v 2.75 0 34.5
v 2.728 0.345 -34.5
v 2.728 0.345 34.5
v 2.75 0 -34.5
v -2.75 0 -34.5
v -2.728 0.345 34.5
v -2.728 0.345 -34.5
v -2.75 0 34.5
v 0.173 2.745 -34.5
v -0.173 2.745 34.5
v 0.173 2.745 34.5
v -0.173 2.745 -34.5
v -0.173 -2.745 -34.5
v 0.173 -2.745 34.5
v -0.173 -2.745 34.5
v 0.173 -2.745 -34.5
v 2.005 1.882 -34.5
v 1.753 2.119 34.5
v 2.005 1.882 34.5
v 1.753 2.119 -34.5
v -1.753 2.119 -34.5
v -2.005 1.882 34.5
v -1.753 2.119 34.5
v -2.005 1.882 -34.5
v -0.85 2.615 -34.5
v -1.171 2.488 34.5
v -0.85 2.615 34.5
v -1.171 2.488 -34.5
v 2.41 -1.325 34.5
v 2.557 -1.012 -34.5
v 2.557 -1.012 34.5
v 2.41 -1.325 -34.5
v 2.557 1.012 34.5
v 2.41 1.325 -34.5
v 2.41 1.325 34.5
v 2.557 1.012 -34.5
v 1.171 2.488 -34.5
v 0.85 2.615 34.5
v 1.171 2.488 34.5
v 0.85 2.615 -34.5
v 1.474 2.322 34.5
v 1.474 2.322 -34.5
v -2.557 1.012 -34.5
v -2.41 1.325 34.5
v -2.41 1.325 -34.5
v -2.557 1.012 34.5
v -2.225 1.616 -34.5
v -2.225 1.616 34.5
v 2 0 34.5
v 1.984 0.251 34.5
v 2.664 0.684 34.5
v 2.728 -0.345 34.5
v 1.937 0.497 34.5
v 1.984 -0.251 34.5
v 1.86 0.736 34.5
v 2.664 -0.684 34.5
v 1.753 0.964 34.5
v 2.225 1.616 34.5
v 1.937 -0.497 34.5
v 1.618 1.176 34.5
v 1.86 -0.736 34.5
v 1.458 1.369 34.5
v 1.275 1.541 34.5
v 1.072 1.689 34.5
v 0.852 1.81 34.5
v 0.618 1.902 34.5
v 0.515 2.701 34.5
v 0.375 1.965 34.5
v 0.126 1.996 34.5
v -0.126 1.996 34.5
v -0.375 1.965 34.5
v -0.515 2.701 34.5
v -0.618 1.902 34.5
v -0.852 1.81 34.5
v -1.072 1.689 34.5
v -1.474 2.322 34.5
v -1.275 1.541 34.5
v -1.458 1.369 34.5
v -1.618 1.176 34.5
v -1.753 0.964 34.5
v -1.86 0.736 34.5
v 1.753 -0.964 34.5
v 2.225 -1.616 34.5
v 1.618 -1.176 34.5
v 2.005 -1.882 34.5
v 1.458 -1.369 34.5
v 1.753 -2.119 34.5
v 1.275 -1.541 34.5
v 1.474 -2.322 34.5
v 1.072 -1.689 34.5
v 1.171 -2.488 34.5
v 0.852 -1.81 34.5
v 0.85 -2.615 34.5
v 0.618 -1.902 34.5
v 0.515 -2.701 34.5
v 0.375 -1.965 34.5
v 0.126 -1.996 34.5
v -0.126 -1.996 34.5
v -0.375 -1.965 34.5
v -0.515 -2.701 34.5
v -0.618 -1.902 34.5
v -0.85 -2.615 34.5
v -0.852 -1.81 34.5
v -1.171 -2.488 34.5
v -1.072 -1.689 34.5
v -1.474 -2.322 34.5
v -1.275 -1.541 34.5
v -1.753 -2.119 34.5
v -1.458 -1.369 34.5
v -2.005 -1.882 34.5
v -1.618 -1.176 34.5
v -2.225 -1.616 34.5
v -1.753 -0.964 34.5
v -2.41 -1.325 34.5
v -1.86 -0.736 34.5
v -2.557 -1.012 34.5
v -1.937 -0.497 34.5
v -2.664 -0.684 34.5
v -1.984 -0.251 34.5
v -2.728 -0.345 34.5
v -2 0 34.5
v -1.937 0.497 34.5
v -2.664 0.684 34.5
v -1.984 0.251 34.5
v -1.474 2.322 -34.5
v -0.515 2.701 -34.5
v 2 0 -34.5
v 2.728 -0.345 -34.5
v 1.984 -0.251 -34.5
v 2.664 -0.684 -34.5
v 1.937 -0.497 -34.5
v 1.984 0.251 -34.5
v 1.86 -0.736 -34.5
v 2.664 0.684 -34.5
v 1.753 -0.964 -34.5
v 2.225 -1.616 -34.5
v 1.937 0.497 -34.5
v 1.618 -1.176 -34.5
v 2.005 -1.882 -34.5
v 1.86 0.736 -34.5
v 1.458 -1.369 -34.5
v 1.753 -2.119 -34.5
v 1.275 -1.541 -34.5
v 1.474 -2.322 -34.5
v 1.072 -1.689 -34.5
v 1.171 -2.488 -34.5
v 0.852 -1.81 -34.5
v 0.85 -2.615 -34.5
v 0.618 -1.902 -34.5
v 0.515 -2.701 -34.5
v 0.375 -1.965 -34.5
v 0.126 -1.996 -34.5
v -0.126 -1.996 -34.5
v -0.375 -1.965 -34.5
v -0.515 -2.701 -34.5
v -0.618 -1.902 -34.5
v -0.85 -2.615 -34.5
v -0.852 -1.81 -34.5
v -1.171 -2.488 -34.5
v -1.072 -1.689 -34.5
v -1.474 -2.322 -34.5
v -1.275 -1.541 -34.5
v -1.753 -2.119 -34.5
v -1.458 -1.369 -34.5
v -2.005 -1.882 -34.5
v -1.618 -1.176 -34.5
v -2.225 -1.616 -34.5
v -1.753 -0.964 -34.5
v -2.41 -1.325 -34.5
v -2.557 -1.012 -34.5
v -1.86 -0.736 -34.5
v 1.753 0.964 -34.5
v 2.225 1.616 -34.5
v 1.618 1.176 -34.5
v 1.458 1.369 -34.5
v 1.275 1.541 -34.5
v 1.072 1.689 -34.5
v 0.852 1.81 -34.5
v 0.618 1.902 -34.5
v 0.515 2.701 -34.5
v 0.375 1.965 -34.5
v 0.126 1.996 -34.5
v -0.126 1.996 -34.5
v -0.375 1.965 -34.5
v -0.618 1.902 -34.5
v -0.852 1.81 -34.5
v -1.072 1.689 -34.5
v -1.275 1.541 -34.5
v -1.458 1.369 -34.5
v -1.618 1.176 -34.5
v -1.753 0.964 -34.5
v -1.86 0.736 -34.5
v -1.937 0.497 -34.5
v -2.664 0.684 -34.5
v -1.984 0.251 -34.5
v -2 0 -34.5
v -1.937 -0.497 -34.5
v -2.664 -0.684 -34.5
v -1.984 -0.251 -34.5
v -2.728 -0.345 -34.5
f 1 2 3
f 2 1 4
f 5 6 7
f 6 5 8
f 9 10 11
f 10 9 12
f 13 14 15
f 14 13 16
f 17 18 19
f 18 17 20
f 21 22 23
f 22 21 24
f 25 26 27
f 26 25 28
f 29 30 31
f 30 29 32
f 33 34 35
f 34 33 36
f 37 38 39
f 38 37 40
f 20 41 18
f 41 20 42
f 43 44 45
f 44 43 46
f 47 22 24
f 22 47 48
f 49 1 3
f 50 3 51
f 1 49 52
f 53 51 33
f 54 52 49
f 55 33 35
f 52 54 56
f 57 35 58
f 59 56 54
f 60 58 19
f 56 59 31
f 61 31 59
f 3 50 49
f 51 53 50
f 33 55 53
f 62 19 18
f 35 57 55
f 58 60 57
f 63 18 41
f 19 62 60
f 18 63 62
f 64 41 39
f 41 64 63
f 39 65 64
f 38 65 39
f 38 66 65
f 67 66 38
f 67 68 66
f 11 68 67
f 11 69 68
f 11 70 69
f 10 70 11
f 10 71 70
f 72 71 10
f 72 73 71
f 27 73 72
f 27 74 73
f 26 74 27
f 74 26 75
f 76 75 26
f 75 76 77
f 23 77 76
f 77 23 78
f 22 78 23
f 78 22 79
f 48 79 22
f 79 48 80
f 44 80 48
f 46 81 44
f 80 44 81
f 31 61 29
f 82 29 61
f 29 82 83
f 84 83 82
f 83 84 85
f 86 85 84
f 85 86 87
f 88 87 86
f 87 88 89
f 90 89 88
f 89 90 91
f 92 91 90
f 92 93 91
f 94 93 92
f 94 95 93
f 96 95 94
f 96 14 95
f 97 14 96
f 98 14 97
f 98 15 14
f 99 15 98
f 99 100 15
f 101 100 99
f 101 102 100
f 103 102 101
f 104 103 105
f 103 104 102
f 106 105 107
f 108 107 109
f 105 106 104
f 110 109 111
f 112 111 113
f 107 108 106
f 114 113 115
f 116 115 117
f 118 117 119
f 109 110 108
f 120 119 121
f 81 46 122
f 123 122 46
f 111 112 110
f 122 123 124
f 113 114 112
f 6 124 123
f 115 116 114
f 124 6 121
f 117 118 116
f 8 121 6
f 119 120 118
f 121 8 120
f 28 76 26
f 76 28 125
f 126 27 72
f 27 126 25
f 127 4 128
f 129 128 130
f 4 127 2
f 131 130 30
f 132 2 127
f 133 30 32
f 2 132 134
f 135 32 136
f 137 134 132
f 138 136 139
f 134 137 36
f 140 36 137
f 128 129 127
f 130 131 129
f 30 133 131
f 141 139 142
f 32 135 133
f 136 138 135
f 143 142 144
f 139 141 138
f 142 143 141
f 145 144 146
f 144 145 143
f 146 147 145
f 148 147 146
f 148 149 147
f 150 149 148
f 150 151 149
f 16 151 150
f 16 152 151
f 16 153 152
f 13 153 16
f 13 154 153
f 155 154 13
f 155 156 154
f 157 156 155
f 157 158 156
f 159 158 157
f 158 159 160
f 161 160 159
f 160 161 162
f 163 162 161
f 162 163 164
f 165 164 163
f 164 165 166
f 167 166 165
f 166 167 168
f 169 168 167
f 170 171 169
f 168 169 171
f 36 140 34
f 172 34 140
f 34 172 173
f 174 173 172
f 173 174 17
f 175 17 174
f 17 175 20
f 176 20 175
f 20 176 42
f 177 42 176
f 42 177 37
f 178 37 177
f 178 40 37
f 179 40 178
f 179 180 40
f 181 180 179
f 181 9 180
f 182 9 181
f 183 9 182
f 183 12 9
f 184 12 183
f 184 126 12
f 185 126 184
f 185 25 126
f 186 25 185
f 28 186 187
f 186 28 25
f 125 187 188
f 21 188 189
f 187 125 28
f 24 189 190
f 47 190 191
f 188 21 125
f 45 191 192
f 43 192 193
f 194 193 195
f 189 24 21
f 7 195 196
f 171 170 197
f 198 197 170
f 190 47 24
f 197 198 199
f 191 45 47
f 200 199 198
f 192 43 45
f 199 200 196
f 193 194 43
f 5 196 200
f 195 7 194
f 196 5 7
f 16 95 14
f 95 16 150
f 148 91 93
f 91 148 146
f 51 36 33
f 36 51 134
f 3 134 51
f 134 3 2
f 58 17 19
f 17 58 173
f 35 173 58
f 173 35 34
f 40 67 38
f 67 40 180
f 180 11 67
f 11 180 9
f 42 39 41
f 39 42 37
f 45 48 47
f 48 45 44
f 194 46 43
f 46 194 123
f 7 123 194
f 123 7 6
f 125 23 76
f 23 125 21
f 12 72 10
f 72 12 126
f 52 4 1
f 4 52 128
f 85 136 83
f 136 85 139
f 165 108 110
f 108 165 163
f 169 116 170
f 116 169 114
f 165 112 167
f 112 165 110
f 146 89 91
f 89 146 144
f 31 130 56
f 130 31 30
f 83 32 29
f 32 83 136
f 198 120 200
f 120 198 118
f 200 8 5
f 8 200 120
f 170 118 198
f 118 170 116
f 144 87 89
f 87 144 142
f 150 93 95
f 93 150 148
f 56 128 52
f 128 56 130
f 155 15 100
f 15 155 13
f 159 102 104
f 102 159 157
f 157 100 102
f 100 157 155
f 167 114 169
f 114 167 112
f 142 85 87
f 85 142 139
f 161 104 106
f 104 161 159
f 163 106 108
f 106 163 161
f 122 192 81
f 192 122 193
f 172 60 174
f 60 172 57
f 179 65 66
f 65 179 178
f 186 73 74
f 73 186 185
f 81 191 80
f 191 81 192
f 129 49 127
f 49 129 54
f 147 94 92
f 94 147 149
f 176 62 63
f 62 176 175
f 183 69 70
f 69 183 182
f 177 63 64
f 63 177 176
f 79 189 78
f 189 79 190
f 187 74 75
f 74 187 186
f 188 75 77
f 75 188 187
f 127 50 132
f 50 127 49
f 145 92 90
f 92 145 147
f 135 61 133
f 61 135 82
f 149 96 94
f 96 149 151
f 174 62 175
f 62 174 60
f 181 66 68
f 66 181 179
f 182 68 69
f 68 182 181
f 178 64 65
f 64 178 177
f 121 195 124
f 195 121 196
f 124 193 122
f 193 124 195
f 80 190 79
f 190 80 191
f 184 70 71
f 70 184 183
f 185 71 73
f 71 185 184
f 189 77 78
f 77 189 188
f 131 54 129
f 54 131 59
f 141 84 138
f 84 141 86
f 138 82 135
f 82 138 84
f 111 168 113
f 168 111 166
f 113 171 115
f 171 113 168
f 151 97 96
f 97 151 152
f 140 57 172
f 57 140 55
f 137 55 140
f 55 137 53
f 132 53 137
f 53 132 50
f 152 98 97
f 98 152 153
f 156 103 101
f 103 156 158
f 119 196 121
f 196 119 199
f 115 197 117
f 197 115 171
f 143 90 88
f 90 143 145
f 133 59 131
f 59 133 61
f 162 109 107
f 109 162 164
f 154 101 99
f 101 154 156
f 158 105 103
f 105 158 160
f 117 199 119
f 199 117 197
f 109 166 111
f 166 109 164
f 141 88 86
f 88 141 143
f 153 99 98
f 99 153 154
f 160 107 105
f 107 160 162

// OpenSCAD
$fn = 50;


difference() {
	union() {
		translate(v = [0, 0, -34.5000000000]) {
			cylinder(h = 69, r = 2.7500000000);
		}
	}
	union() {
		translate(v = [0, 0, -100.0000000000]) {
			cylinder(h = 200, r = 2.0000000000);
		}
	}
}
